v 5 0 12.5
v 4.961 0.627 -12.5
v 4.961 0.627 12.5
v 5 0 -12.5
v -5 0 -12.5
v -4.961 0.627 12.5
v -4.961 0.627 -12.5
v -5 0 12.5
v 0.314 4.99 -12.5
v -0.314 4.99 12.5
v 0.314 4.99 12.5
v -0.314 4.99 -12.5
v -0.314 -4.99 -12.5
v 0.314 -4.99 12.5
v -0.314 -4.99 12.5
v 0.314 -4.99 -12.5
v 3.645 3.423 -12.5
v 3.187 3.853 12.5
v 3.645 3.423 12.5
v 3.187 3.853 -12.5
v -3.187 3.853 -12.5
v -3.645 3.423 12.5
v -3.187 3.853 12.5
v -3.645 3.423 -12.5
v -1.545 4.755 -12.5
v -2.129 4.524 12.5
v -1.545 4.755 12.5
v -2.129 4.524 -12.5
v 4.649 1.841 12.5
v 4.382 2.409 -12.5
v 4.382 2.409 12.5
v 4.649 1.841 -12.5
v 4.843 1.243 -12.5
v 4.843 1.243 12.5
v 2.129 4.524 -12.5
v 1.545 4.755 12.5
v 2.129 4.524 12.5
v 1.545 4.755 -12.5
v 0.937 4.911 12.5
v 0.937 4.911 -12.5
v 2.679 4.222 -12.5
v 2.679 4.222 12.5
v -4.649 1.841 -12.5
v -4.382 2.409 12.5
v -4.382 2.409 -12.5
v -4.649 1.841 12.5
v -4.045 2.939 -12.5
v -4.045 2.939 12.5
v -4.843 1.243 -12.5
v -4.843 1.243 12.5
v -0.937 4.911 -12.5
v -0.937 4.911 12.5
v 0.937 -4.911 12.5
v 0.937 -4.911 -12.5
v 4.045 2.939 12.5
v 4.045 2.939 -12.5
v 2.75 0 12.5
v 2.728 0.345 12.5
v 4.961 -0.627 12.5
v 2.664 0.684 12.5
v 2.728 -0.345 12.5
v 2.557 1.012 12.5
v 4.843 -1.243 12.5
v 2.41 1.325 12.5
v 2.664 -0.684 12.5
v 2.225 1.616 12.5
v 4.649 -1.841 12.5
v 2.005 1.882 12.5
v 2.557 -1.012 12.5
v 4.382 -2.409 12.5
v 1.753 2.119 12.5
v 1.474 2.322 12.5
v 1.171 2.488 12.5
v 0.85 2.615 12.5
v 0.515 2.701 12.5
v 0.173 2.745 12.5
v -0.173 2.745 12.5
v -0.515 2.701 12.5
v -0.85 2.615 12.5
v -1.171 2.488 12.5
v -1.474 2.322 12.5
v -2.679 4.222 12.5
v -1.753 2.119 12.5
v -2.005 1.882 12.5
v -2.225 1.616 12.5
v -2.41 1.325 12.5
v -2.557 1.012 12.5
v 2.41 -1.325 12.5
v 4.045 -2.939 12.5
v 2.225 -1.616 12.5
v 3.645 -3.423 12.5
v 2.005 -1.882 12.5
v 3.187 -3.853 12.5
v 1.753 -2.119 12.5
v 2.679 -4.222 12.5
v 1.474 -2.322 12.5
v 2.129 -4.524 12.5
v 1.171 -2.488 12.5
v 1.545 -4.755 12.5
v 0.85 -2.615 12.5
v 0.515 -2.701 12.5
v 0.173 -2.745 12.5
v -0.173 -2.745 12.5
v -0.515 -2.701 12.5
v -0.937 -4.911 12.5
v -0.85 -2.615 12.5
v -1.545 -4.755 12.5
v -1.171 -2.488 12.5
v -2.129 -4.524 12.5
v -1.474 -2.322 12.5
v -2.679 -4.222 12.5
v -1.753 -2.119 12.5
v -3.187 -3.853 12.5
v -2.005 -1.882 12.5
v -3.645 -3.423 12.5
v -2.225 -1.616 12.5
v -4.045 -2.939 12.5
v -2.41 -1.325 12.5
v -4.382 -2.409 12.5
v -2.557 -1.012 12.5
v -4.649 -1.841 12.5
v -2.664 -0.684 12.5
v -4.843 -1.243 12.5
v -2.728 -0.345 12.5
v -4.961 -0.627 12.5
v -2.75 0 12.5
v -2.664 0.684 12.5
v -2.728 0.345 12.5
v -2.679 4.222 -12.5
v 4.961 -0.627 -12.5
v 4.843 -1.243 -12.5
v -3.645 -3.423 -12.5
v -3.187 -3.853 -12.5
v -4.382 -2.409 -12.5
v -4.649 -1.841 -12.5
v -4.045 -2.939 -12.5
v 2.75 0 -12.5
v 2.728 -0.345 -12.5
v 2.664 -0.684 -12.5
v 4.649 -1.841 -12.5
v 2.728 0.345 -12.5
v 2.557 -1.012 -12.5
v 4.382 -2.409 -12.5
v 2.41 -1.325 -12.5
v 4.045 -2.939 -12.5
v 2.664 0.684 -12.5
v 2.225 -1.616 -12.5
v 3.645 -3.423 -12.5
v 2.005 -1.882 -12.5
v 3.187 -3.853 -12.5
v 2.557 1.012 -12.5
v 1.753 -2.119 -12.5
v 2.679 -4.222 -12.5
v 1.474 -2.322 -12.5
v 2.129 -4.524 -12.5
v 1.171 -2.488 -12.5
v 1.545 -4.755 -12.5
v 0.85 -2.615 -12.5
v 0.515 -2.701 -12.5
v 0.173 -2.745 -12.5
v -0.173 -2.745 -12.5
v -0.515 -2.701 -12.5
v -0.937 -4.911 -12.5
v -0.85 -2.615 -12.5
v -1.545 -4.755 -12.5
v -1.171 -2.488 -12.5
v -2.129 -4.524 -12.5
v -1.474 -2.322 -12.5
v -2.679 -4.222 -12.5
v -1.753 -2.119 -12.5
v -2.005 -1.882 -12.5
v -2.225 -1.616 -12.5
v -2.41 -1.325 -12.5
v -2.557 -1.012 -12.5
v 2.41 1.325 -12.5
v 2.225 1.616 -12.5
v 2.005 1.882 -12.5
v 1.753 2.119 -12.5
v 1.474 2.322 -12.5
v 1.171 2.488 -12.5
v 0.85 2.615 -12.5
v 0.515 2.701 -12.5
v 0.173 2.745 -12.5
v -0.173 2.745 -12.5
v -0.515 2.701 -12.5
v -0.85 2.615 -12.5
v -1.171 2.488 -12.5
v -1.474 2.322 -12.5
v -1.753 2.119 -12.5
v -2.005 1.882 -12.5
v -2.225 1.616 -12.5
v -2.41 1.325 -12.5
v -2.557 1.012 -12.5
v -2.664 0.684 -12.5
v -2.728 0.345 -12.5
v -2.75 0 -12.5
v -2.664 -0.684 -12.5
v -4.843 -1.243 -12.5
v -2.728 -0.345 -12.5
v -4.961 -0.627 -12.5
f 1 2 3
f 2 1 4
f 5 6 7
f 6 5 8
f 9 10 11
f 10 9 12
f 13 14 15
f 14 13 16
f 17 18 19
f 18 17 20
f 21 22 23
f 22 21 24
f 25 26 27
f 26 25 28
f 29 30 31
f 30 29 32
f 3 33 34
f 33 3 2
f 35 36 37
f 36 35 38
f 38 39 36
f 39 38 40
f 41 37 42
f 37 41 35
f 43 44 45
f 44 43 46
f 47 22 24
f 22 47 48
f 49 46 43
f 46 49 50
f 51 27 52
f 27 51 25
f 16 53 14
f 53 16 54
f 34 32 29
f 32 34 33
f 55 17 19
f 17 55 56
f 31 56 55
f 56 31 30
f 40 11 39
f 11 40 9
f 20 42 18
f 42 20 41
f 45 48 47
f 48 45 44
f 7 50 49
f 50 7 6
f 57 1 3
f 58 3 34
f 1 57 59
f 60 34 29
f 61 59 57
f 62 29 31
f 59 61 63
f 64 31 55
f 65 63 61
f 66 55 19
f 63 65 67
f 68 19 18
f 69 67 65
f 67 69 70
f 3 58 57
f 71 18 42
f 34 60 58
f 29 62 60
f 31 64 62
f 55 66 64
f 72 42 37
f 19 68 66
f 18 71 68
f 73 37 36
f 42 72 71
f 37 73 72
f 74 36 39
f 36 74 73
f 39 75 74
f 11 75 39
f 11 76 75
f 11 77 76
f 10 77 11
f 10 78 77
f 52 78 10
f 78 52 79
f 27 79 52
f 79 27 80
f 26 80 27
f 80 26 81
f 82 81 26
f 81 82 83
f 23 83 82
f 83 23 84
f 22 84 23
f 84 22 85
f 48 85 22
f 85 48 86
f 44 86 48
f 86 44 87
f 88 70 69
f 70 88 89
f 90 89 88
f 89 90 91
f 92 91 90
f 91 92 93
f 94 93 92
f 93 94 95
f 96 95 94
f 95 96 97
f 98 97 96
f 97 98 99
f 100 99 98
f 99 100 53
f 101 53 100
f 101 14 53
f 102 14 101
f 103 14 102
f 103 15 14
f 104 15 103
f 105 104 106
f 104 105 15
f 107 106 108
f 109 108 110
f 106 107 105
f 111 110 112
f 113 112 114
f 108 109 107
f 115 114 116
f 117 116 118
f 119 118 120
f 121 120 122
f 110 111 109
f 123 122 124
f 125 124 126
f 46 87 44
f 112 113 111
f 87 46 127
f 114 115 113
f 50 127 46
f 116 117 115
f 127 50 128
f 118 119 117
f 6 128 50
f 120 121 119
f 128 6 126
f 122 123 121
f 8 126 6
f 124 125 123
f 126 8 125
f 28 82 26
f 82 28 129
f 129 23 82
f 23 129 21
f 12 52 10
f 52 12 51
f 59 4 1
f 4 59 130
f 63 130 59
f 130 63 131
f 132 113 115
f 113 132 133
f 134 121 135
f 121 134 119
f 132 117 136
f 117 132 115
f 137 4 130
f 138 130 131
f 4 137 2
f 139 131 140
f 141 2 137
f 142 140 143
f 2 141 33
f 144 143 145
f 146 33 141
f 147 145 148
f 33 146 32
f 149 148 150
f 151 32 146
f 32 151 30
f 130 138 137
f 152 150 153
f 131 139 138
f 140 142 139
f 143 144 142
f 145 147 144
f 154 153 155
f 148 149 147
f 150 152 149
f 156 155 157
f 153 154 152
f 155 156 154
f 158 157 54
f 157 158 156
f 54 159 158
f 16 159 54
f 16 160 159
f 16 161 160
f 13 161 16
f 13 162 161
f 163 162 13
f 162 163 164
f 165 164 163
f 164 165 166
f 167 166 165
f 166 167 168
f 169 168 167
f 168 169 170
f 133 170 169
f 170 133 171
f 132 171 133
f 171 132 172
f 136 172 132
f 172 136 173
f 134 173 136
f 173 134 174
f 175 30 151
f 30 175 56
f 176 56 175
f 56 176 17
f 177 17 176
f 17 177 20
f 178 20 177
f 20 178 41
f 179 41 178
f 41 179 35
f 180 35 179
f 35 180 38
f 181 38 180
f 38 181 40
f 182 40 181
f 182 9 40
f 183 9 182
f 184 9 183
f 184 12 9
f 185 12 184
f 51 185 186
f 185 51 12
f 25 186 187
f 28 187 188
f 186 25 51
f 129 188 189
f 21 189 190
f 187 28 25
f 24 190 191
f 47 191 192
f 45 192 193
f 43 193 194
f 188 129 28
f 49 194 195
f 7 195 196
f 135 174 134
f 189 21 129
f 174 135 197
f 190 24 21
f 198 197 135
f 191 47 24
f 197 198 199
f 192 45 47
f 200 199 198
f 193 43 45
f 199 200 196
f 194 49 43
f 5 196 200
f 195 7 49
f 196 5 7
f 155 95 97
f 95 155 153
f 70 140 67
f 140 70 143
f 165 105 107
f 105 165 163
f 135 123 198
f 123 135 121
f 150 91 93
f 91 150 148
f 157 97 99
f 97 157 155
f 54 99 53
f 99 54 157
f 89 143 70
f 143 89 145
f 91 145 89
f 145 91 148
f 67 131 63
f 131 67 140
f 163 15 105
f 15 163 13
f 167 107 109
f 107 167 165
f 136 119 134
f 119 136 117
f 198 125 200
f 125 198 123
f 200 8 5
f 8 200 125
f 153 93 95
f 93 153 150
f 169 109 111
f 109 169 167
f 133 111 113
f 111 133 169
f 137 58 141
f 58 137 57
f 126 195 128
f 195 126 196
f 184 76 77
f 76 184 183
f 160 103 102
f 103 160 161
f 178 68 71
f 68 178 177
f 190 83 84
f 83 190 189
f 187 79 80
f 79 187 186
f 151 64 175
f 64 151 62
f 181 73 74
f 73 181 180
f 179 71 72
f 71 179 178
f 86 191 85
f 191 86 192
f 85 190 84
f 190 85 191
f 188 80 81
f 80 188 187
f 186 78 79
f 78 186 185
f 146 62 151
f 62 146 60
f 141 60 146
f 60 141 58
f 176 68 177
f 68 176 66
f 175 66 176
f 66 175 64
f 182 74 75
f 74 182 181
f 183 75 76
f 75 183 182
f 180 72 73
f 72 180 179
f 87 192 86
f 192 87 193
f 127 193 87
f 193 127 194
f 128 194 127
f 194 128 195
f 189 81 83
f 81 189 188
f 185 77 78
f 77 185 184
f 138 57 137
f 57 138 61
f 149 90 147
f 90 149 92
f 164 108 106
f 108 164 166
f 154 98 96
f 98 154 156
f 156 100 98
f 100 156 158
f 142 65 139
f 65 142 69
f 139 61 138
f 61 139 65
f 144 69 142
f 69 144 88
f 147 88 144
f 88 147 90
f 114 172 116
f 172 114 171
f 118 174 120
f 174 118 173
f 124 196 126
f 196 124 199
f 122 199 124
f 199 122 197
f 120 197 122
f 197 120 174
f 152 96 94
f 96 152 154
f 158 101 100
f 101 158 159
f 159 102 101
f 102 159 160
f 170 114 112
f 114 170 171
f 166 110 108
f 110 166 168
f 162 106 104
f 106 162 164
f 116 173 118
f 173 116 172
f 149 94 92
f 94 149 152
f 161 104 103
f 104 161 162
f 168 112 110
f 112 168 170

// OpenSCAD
$fn = 50;


difference() {
	union() {
		translate(v = [0, 0, -12.5000000000]) {
			cylinder(h = 25, r = 5.0000000000);
		}
	}
	union() {
		translate(v = [0, 0, -100.0000000000]) {
			cylinder(h = 200, r = 2.7500000000);
		}
	}
}
